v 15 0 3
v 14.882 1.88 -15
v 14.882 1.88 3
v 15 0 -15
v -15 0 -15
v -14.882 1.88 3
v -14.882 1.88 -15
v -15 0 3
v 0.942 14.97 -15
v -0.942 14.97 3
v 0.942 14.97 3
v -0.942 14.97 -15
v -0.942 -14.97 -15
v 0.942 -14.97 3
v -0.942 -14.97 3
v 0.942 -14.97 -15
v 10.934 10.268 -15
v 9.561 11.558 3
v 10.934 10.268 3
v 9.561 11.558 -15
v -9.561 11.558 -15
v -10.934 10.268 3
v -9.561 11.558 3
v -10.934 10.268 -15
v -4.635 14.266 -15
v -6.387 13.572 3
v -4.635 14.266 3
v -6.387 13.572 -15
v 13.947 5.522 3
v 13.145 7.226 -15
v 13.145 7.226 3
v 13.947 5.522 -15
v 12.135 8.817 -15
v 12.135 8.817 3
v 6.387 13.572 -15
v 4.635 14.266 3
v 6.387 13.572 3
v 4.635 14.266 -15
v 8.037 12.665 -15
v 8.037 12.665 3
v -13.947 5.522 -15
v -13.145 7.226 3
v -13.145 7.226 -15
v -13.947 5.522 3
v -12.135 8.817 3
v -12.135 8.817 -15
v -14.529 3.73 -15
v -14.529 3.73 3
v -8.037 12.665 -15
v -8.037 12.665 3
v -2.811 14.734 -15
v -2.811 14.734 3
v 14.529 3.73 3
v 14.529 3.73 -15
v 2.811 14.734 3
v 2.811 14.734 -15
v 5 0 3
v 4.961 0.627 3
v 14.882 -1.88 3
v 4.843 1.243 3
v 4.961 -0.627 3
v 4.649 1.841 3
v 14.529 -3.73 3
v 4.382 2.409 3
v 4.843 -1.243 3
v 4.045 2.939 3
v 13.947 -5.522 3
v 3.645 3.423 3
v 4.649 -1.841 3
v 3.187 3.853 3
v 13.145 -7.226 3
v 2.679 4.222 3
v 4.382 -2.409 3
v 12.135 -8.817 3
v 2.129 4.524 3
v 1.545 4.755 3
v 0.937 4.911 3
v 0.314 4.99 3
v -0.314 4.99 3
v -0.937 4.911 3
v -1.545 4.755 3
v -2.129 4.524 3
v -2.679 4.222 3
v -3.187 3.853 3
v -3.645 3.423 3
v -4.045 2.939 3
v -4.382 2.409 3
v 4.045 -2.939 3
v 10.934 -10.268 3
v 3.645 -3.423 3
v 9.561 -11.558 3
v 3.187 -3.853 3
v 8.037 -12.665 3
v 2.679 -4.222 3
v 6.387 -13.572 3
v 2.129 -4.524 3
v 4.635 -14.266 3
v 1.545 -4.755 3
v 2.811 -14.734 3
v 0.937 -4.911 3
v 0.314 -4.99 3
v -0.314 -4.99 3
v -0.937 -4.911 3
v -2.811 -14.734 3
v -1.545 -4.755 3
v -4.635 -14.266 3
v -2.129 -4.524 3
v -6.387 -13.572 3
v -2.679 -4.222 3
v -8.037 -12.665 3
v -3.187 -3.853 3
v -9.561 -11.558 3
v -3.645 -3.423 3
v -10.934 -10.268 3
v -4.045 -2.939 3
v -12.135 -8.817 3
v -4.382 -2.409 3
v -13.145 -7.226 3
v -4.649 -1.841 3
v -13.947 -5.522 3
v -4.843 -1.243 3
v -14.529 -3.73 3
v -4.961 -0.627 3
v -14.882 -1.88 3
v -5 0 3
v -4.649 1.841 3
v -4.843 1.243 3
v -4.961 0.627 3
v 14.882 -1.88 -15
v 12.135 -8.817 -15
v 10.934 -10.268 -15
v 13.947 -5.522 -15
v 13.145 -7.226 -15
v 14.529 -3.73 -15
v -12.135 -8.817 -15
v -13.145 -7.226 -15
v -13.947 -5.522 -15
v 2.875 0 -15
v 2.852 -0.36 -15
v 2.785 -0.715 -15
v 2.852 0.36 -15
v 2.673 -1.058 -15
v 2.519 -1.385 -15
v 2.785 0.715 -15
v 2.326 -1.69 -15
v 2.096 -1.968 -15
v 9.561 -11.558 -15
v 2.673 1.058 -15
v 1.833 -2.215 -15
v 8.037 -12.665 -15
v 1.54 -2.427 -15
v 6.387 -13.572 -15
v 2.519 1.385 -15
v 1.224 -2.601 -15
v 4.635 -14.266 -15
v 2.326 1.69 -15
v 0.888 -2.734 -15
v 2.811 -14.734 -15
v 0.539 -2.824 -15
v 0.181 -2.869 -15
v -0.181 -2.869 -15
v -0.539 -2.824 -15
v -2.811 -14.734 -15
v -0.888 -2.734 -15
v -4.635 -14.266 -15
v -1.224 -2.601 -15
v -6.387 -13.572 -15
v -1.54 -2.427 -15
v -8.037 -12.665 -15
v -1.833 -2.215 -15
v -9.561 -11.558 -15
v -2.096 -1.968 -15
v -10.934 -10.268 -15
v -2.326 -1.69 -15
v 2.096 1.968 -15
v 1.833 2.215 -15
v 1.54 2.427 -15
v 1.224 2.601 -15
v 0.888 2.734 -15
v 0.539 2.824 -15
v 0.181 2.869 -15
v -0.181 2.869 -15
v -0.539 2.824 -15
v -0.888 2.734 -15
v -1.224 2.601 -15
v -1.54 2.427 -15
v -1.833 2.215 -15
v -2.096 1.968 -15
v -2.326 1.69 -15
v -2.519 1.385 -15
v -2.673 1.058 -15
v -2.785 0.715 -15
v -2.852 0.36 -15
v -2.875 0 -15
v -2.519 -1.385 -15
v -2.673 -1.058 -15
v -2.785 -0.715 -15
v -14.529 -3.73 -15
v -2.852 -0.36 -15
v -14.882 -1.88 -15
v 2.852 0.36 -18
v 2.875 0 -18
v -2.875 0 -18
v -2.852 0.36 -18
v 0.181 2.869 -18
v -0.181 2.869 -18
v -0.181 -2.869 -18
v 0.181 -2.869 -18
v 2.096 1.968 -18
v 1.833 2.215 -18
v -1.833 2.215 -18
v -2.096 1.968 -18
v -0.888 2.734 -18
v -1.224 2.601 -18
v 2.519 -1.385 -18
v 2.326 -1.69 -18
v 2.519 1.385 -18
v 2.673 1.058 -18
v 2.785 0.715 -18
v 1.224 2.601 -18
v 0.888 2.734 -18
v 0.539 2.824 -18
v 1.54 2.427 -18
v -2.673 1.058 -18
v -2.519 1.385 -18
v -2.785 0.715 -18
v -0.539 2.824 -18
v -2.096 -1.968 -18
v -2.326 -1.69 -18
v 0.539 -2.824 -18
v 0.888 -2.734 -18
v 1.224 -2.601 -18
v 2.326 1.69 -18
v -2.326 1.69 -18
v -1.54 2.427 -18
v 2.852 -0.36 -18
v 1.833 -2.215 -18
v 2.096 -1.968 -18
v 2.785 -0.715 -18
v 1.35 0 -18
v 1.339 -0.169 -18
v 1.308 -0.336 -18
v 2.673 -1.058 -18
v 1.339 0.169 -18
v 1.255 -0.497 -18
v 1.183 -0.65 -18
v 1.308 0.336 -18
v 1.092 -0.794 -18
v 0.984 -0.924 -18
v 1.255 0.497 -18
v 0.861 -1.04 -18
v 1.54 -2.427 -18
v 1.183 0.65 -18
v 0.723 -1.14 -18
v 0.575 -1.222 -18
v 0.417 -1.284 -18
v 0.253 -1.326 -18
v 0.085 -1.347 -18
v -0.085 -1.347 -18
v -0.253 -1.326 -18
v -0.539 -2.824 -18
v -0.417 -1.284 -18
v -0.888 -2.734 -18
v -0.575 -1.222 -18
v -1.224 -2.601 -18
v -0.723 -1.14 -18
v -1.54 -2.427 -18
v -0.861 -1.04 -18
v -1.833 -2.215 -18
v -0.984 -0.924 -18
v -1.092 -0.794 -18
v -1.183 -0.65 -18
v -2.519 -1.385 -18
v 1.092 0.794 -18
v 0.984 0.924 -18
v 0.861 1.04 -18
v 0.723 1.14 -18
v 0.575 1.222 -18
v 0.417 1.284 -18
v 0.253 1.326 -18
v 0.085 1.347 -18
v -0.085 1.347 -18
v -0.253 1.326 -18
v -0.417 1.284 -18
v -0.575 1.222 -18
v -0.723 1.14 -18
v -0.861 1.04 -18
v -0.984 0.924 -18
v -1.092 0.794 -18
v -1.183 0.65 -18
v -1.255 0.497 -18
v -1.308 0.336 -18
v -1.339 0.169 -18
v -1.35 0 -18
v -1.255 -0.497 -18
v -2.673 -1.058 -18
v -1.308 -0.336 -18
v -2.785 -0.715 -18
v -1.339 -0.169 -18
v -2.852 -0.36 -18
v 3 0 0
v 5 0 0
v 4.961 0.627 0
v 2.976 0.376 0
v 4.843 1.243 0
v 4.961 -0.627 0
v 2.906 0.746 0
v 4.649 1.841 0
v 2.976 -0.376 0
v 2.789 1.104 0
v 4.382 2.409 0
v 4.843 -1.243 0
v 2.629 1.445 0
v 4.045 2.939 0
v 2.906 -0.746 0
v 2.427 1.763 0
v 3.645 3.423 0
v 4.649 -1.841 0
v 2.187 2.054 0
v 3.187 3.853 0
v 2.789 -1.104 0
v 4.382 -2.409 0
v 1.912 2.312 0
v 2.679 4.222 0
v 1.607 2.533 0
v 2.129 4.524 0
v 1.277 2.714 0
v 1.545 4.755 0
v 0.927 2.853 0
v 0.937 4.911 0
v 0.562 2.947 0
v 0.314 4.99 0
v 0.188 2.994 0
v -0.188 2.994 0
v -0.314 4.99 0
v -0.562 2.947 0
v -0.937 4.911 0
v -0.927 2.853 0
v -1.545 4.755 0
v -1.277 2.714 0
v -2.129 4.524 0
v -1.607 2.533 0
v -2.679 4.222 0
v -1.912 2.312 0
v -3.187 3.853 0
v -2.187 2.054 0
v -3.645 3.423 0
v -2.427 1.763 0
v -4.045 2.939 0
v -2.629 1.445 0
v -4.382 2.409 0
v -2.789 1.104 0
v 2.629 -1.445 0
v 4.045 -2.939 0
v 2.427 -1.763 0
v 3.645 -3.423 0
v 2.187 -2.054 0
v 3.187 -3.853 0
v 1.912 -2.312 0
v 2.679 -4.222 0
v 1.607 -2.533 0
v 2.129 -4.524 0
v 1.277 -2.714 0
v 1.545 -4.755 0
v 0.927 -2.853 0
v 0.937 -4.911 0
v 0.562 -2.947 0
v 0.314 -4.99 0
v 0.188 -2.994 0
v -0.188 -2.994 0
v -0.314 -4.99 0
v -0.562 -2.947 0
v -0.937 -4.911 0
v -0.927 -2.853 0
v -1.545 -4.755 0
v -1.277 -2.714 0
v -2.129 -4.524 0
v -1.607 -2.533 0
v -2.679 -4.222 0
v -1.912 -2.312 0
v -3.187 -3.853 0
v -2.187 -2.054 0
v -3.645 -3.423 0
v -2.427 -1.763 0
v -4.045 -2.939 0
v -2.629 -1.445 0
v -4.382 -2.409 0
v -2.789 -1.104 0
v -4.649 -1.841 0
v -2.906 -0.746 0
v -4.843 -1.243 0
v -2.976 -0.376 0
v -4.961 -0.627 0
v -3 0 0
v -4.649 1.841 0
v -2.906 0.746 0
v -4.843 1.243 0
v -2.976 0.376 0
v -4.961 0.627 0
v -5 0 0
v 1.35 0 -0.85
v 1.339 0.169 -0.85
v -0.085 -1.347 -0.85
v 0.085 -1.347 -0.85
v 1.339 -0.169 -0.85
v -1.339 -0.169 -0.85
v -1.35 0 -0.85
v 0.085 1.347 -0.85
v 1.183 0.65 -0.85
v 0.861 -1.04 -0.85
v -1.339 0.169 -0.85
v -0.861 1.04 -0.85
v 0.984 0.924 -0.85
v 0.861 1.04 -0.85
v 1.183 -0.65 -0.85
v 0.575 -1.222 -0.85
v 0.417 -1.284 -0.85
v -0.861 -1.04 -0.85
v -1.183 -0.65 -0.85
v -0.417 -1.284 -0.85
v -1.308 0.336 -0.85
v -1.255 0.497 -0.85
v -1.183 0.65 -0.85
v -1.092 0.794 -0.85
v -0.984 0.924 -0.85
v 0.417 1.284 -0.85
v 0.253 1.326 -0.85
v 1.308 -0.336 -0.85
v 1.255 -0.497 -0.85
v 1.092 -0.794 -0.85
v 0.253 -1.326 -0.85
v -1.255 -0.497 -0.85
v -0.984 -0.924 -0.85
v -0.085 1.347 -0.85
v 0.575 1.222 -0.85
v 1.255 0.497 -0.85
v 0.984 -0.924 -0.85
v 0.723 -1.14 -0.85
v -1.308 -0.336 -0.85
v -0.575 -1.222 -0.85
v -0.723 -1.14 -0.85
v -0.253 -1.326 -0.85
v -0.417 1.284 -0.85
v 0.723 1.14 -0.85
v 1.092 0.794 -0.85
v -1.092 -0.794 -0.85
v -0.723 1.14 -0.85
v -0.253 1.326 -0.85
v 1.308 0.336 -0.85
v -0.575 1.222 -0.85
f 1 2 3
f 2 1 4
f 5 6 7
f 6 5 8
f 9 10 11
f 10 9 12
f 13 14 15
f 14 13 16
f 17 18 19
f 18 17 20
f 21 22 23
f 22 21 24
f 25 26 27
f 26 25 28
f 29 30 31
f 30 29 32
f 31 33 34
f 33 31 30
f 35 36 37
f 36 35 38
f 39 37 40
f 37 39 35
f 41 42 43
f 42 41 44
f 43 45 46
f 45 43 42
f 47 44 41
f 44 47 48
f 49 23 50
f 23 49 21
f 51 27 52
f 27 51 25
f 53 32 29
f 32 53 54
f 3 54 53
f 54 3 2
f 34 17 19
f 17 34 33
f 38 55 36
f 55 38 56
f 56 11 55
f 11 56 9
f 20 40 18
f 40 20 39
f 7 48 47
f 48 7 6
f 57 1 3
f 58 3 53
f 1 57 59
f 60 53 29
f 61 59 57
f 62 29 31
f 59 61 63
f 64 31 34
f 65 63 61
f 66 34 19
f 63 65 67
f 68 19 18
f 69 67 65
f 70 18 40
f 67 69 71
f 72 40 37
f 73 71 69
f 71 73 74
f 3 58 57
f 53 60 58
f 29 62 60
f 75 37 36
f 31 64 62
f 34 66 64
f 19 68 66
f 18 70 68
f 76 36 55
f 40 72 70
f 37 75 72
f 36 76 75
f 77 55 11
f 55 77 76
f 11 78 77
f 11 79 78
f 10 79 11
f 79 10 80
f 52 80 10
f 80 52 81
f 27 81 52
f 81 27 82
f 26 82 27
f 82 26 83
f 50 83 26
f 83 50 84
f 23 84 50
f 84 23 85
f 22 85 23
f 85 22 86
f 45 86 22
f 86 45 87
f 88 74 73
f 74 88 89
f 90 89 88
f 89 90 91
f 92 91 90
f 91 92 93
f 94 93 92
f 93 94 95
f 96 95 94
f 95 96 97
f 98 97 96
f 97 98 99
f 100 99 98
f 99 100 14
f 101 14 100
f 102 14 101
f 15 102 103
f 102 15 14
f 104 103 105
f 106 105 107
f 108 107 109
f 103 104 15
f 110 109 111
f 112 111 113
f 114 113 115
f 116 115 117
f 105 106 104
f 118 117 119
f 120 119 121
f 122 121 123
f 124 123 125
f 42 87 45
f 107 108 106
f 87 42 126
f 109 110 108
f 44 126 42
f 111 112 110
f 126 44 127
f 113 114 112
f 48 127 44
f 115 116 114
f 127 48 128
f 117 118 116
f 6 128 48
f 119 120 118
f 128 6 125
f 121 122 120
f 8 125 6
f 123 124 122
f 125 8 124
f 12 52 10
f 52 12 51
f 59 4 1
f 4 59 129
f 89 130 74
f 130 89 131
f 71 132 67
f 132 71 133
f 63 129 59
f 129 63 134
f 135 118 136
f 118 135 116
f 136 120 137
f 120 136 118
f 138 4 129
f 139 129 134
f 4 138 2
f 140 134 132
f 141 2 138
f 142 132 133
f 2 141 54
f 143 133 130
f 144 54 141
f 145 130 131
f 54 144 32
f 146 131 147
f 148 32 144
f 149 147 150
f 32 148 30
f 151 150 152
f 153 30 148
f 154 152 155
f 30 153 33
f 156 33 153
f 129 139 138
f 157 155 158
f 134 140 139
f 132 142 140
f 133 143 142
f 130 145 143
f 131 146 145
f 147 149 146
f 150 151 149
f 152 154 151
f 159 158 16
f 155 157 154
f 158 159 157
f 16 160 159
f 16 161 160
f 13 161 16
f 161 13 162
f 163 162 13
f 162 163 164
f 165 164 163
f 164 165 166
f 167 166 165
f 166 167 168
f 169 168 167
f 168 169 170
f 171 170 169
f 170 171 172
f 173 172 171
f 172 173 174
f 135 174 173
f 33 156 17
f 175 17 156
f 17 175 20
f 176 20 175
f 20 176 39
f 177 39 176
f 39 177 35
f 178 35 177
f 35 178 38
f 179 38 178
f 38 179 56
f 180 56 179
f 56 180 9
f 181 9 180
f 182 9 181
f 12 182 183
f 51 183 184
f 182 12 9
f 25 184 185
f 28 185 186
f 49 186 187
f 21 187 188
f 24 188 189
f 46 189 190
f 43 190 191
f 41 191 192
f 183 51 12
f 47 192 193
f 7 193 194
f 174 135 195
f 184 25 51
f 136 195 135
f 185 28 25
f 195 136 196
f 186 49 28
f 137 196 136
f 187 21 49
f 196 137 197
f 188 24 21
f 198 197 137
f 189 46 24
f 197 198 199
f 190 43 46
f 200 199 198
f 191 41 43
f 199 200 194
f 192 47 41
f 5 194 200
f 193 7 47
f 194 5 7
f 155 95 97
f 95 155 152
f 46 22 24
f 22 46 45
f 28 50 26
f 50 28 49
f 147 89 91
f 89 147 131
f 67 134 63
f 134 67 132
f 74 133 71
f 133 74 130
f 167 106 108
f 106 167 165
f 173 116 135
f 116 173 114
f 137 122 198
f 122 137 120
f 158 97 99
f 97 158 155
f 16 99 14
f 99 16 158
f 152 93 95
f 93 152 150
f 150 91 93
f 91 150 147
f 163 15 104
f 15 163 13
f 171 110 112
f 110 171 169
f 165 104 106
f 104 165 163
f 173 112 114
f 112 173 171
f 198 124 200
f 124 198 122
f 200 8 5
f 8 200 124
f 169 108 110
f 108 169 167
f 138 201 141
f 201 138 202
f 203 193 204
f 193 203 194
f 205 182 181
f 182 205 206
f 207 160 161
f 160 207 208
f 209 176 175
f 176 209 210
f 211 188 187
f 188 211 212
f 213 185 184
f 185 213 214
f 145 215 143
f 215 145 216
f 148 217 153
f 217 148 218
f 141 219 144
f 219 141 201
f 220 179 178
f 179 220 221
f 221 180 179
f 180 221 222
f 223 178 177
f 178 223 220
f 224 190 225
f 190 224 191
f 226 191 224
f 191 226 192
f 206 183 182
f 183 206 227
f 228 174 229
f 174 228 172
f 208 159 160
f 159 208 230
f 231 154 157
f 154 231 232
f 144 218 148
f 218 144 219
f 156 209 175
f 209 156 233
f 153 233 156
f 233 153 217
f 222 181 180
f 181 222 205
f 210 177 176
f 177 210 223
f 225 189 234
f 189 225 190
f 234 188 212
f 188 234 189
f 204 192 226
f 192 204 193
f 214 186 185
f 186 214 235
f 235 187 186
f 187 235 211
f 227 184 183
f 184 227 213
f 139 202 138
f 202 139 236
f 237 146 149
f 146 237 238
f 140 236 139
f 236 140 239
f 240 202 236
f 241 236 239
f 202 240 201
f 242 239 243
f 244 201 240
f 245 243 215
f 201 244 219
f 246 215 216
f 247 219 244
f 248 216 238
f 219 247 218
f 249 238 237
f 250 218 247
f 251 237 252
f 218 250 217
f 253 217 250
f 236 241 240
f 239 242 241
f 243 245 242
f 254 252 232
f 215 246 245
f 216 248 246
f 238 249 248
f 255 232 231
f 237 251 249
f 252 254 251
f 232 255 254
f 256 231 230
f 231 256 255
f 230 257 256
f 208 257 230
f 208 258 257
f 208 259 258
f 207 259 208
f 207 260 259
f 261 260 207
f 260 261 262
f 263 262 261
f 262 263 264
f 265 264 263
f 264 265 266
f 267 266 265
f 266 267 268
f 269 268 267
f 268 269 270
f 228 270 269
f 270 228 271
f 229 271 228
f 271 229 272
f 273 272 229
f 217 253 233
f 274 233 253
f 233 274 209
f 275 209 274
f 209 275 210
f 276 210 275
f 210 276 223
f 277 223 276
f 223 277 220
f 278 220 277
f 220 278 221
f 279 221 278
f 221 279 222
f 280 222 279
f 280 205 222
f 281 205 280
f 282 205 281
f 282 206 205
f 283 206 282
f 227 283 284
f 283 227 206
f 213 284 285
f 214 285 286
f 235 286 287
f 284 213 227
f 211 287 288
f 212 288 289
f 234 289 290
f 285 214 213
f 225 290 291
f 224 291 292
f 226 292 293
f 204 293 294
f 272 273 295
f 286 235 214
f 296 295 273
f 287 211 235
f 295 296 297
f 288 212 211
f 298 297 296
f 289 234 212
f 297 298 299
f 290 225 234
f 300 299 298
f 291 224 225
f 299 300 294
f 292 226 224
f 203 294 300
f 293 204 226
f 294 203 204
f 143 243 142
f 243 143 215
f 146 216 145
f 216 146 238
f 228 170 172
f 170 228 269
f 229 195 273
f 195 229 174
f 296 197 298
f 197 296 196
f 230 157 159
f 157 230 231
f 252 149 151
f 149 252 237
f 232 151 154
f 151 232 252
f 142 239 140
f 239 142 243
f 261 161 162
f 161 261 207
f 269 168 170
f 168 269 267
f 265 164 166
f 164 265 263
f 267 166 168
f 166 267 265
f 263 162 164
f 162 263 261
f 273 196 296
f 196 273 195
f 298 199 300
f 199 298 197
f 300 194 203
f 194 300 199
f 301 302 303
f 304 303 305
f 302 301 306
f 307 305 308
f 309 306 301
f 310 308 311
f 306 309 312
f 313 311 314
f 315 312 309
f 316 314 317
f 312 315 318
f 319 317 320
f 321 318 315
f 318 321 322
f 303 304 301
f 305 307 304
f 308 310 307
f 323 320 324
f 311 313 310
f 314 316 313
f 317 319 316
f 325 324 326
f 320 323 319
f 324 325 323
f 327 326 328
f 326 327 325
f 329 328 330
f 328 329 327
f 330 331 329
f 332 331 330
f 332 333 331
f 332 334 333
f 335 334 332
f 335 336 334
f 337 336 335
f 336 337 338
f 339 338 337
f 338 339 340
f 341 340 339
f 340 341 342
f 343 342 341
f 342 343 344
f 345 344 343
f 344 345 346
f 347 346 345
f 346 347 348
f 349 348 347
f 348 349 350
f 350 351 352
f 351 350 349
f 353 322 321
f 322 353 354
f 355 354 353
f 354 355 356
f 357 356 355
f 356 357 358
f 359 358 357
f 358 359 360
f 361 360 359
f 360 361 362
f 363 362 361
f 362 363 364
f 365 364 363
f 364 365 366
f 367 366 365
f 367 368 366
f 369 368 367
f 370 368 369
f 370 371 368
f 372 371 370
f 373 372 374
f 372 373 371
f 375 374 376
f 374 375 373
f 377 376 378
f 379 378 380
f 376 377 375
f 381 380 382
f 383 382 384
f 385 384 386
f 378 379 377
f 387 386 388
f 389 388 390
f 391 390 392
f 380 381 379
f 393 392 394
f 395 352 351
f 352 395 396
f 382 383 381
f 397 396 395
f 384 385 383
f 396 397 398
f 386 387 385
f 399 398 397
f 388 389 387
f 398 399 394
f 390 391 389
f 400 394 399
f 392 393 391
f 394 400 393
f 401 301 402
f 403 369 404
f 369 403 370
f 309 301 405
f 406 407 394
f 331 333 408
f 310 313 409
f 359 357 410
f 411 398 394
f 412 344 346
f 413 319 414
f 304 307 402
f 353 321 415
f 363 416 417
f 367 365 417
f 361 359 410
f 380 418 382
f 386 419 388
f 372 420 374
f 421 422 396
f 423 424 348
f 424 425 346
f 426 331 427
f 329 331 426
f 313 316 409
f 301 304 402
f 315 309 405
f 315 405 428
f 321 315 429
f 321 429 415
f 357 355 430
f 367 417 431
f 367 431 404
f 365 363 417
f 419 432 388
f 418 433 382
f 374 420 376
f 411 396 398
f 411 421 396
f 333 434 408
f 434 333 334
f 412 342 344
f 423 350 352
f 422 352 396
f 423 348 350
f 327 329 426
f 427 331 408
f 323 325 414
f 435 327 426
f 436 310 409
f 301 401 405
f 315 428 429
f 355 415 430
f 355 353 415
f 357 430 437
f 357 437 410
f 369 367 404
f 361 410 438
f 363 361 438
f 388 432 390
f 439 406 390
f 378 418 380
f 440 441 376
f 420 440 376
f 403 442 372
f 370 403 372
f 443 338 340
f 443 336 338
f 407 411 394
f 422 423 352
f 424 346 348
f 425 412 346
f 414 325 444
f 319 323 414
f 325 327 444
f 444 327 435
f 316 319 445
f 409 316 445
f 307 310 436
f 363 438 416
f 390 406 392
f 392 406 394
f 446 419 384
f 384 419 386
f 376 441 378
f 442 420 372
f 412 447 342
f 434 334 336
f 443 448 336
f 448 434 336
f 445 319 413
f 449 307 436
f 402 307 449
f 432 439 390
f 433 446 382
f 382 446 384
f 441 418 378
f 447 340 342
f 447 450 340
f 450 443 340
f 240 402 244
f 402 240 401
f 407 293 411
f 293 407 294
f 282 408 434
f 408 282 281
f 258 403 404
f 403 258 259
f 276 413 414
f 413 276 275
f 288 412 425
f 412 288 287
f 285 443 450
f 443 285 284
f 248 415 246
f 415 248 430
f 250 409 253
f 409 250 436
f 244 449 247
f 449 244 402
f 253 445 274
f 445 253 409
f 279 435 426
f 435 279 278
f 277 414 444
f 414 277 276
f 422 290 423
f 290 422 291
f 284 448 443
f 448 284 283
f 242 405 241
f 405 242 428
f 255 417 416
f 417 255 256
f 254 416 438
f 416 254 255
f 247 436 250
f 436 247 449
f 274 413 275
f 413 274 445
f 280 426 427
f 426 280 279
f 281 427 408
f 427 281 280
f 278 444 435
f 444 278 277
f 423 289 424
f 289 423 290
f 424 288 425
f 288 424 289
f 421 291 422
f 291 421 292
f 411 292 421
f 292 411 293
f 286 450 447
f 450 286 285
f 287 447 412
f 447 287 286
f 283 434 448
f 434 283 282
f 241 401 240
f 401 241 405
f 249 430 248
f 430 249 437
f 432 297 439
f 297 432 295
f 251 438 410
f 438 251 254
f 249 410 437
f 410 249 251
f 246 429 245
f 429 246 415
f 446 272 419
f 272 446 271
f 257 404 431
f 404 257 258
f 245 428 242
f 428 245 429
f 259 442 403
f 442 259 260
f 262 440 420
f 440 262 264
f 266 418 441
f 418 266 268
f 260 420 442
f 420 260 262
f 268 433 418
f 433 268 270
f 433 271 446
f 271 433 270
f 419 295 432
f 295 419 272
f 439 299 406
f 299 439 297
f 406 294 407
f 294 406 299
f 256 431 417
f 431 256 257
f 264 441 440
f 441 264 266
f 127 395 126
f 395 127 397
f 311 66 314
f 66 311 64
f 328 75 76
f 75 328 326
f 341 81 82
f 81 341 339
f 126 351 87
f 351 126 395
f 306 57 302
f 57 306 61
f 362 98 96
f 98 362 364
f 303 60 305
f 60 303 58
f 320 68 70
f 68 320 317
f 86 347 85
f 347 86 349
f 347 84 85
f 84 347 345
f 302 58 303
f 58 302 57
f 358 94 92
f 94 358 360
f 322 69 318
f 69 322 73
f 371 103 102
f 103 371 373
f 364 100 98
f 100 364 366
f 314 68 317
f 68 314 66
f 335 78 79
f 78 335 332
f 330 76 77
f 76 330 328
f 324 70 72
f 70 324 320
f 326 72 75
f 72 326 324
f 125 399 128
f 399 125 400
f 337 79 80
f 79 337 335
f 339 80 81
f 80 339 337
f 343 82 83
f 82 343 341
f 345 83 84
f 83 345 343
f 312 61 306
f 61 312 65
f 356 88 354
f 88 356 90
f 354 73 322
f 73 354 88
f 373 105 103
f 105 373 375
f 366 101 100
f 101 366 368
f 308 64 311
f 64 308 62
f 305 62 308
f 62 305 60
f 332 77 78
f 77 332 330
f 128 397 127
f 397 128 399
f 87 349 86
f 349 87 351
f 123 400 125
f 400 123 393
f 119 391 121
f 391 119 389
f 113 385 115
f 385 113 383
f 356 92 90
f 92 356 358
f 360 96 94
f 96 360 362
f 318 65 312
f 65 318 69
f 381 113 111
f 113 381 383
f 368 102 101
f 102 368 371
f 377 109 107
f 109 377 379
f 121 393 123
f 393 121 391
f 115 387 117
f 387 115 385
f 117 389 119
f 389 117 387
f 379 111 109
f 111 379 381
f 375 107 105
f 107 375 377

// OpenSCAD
$fn = 50;

difference() {
	union() {
		translate(v = [0, 0, -15.0]) {
			cylinder(h = 18, r = 15.0);
		}
		#translate(v = [0, 0, -18.0]) {
			cylinder(h = 18, r = 2.875);
		}
	}
	union() {
		translate(v = [0, 0, 0]) {
			rotate(a = [0, 0, 0]) {
				difference() {
					union() {
						translate(v = [0, 0, -18.0]) {
							cylinder(h = 18, r = 1.0);
						}
						translate(v = [0, 0, -0.85]) {
							cylinder(h = 0.85, r1 = 1.35, r2 = 3.0);
						}
						translate(v = [0, 0, -18.0]) {
							cylinder(h = 18, r = 1.35);
						}
						translate(v = [0, 0, -18.0]) {
							cylinder(h = 18, r = 1.0);
						}
					}
					union();
				}
			}
		}
		#cylinder(h = 3, r = 5.0);
	}
}
